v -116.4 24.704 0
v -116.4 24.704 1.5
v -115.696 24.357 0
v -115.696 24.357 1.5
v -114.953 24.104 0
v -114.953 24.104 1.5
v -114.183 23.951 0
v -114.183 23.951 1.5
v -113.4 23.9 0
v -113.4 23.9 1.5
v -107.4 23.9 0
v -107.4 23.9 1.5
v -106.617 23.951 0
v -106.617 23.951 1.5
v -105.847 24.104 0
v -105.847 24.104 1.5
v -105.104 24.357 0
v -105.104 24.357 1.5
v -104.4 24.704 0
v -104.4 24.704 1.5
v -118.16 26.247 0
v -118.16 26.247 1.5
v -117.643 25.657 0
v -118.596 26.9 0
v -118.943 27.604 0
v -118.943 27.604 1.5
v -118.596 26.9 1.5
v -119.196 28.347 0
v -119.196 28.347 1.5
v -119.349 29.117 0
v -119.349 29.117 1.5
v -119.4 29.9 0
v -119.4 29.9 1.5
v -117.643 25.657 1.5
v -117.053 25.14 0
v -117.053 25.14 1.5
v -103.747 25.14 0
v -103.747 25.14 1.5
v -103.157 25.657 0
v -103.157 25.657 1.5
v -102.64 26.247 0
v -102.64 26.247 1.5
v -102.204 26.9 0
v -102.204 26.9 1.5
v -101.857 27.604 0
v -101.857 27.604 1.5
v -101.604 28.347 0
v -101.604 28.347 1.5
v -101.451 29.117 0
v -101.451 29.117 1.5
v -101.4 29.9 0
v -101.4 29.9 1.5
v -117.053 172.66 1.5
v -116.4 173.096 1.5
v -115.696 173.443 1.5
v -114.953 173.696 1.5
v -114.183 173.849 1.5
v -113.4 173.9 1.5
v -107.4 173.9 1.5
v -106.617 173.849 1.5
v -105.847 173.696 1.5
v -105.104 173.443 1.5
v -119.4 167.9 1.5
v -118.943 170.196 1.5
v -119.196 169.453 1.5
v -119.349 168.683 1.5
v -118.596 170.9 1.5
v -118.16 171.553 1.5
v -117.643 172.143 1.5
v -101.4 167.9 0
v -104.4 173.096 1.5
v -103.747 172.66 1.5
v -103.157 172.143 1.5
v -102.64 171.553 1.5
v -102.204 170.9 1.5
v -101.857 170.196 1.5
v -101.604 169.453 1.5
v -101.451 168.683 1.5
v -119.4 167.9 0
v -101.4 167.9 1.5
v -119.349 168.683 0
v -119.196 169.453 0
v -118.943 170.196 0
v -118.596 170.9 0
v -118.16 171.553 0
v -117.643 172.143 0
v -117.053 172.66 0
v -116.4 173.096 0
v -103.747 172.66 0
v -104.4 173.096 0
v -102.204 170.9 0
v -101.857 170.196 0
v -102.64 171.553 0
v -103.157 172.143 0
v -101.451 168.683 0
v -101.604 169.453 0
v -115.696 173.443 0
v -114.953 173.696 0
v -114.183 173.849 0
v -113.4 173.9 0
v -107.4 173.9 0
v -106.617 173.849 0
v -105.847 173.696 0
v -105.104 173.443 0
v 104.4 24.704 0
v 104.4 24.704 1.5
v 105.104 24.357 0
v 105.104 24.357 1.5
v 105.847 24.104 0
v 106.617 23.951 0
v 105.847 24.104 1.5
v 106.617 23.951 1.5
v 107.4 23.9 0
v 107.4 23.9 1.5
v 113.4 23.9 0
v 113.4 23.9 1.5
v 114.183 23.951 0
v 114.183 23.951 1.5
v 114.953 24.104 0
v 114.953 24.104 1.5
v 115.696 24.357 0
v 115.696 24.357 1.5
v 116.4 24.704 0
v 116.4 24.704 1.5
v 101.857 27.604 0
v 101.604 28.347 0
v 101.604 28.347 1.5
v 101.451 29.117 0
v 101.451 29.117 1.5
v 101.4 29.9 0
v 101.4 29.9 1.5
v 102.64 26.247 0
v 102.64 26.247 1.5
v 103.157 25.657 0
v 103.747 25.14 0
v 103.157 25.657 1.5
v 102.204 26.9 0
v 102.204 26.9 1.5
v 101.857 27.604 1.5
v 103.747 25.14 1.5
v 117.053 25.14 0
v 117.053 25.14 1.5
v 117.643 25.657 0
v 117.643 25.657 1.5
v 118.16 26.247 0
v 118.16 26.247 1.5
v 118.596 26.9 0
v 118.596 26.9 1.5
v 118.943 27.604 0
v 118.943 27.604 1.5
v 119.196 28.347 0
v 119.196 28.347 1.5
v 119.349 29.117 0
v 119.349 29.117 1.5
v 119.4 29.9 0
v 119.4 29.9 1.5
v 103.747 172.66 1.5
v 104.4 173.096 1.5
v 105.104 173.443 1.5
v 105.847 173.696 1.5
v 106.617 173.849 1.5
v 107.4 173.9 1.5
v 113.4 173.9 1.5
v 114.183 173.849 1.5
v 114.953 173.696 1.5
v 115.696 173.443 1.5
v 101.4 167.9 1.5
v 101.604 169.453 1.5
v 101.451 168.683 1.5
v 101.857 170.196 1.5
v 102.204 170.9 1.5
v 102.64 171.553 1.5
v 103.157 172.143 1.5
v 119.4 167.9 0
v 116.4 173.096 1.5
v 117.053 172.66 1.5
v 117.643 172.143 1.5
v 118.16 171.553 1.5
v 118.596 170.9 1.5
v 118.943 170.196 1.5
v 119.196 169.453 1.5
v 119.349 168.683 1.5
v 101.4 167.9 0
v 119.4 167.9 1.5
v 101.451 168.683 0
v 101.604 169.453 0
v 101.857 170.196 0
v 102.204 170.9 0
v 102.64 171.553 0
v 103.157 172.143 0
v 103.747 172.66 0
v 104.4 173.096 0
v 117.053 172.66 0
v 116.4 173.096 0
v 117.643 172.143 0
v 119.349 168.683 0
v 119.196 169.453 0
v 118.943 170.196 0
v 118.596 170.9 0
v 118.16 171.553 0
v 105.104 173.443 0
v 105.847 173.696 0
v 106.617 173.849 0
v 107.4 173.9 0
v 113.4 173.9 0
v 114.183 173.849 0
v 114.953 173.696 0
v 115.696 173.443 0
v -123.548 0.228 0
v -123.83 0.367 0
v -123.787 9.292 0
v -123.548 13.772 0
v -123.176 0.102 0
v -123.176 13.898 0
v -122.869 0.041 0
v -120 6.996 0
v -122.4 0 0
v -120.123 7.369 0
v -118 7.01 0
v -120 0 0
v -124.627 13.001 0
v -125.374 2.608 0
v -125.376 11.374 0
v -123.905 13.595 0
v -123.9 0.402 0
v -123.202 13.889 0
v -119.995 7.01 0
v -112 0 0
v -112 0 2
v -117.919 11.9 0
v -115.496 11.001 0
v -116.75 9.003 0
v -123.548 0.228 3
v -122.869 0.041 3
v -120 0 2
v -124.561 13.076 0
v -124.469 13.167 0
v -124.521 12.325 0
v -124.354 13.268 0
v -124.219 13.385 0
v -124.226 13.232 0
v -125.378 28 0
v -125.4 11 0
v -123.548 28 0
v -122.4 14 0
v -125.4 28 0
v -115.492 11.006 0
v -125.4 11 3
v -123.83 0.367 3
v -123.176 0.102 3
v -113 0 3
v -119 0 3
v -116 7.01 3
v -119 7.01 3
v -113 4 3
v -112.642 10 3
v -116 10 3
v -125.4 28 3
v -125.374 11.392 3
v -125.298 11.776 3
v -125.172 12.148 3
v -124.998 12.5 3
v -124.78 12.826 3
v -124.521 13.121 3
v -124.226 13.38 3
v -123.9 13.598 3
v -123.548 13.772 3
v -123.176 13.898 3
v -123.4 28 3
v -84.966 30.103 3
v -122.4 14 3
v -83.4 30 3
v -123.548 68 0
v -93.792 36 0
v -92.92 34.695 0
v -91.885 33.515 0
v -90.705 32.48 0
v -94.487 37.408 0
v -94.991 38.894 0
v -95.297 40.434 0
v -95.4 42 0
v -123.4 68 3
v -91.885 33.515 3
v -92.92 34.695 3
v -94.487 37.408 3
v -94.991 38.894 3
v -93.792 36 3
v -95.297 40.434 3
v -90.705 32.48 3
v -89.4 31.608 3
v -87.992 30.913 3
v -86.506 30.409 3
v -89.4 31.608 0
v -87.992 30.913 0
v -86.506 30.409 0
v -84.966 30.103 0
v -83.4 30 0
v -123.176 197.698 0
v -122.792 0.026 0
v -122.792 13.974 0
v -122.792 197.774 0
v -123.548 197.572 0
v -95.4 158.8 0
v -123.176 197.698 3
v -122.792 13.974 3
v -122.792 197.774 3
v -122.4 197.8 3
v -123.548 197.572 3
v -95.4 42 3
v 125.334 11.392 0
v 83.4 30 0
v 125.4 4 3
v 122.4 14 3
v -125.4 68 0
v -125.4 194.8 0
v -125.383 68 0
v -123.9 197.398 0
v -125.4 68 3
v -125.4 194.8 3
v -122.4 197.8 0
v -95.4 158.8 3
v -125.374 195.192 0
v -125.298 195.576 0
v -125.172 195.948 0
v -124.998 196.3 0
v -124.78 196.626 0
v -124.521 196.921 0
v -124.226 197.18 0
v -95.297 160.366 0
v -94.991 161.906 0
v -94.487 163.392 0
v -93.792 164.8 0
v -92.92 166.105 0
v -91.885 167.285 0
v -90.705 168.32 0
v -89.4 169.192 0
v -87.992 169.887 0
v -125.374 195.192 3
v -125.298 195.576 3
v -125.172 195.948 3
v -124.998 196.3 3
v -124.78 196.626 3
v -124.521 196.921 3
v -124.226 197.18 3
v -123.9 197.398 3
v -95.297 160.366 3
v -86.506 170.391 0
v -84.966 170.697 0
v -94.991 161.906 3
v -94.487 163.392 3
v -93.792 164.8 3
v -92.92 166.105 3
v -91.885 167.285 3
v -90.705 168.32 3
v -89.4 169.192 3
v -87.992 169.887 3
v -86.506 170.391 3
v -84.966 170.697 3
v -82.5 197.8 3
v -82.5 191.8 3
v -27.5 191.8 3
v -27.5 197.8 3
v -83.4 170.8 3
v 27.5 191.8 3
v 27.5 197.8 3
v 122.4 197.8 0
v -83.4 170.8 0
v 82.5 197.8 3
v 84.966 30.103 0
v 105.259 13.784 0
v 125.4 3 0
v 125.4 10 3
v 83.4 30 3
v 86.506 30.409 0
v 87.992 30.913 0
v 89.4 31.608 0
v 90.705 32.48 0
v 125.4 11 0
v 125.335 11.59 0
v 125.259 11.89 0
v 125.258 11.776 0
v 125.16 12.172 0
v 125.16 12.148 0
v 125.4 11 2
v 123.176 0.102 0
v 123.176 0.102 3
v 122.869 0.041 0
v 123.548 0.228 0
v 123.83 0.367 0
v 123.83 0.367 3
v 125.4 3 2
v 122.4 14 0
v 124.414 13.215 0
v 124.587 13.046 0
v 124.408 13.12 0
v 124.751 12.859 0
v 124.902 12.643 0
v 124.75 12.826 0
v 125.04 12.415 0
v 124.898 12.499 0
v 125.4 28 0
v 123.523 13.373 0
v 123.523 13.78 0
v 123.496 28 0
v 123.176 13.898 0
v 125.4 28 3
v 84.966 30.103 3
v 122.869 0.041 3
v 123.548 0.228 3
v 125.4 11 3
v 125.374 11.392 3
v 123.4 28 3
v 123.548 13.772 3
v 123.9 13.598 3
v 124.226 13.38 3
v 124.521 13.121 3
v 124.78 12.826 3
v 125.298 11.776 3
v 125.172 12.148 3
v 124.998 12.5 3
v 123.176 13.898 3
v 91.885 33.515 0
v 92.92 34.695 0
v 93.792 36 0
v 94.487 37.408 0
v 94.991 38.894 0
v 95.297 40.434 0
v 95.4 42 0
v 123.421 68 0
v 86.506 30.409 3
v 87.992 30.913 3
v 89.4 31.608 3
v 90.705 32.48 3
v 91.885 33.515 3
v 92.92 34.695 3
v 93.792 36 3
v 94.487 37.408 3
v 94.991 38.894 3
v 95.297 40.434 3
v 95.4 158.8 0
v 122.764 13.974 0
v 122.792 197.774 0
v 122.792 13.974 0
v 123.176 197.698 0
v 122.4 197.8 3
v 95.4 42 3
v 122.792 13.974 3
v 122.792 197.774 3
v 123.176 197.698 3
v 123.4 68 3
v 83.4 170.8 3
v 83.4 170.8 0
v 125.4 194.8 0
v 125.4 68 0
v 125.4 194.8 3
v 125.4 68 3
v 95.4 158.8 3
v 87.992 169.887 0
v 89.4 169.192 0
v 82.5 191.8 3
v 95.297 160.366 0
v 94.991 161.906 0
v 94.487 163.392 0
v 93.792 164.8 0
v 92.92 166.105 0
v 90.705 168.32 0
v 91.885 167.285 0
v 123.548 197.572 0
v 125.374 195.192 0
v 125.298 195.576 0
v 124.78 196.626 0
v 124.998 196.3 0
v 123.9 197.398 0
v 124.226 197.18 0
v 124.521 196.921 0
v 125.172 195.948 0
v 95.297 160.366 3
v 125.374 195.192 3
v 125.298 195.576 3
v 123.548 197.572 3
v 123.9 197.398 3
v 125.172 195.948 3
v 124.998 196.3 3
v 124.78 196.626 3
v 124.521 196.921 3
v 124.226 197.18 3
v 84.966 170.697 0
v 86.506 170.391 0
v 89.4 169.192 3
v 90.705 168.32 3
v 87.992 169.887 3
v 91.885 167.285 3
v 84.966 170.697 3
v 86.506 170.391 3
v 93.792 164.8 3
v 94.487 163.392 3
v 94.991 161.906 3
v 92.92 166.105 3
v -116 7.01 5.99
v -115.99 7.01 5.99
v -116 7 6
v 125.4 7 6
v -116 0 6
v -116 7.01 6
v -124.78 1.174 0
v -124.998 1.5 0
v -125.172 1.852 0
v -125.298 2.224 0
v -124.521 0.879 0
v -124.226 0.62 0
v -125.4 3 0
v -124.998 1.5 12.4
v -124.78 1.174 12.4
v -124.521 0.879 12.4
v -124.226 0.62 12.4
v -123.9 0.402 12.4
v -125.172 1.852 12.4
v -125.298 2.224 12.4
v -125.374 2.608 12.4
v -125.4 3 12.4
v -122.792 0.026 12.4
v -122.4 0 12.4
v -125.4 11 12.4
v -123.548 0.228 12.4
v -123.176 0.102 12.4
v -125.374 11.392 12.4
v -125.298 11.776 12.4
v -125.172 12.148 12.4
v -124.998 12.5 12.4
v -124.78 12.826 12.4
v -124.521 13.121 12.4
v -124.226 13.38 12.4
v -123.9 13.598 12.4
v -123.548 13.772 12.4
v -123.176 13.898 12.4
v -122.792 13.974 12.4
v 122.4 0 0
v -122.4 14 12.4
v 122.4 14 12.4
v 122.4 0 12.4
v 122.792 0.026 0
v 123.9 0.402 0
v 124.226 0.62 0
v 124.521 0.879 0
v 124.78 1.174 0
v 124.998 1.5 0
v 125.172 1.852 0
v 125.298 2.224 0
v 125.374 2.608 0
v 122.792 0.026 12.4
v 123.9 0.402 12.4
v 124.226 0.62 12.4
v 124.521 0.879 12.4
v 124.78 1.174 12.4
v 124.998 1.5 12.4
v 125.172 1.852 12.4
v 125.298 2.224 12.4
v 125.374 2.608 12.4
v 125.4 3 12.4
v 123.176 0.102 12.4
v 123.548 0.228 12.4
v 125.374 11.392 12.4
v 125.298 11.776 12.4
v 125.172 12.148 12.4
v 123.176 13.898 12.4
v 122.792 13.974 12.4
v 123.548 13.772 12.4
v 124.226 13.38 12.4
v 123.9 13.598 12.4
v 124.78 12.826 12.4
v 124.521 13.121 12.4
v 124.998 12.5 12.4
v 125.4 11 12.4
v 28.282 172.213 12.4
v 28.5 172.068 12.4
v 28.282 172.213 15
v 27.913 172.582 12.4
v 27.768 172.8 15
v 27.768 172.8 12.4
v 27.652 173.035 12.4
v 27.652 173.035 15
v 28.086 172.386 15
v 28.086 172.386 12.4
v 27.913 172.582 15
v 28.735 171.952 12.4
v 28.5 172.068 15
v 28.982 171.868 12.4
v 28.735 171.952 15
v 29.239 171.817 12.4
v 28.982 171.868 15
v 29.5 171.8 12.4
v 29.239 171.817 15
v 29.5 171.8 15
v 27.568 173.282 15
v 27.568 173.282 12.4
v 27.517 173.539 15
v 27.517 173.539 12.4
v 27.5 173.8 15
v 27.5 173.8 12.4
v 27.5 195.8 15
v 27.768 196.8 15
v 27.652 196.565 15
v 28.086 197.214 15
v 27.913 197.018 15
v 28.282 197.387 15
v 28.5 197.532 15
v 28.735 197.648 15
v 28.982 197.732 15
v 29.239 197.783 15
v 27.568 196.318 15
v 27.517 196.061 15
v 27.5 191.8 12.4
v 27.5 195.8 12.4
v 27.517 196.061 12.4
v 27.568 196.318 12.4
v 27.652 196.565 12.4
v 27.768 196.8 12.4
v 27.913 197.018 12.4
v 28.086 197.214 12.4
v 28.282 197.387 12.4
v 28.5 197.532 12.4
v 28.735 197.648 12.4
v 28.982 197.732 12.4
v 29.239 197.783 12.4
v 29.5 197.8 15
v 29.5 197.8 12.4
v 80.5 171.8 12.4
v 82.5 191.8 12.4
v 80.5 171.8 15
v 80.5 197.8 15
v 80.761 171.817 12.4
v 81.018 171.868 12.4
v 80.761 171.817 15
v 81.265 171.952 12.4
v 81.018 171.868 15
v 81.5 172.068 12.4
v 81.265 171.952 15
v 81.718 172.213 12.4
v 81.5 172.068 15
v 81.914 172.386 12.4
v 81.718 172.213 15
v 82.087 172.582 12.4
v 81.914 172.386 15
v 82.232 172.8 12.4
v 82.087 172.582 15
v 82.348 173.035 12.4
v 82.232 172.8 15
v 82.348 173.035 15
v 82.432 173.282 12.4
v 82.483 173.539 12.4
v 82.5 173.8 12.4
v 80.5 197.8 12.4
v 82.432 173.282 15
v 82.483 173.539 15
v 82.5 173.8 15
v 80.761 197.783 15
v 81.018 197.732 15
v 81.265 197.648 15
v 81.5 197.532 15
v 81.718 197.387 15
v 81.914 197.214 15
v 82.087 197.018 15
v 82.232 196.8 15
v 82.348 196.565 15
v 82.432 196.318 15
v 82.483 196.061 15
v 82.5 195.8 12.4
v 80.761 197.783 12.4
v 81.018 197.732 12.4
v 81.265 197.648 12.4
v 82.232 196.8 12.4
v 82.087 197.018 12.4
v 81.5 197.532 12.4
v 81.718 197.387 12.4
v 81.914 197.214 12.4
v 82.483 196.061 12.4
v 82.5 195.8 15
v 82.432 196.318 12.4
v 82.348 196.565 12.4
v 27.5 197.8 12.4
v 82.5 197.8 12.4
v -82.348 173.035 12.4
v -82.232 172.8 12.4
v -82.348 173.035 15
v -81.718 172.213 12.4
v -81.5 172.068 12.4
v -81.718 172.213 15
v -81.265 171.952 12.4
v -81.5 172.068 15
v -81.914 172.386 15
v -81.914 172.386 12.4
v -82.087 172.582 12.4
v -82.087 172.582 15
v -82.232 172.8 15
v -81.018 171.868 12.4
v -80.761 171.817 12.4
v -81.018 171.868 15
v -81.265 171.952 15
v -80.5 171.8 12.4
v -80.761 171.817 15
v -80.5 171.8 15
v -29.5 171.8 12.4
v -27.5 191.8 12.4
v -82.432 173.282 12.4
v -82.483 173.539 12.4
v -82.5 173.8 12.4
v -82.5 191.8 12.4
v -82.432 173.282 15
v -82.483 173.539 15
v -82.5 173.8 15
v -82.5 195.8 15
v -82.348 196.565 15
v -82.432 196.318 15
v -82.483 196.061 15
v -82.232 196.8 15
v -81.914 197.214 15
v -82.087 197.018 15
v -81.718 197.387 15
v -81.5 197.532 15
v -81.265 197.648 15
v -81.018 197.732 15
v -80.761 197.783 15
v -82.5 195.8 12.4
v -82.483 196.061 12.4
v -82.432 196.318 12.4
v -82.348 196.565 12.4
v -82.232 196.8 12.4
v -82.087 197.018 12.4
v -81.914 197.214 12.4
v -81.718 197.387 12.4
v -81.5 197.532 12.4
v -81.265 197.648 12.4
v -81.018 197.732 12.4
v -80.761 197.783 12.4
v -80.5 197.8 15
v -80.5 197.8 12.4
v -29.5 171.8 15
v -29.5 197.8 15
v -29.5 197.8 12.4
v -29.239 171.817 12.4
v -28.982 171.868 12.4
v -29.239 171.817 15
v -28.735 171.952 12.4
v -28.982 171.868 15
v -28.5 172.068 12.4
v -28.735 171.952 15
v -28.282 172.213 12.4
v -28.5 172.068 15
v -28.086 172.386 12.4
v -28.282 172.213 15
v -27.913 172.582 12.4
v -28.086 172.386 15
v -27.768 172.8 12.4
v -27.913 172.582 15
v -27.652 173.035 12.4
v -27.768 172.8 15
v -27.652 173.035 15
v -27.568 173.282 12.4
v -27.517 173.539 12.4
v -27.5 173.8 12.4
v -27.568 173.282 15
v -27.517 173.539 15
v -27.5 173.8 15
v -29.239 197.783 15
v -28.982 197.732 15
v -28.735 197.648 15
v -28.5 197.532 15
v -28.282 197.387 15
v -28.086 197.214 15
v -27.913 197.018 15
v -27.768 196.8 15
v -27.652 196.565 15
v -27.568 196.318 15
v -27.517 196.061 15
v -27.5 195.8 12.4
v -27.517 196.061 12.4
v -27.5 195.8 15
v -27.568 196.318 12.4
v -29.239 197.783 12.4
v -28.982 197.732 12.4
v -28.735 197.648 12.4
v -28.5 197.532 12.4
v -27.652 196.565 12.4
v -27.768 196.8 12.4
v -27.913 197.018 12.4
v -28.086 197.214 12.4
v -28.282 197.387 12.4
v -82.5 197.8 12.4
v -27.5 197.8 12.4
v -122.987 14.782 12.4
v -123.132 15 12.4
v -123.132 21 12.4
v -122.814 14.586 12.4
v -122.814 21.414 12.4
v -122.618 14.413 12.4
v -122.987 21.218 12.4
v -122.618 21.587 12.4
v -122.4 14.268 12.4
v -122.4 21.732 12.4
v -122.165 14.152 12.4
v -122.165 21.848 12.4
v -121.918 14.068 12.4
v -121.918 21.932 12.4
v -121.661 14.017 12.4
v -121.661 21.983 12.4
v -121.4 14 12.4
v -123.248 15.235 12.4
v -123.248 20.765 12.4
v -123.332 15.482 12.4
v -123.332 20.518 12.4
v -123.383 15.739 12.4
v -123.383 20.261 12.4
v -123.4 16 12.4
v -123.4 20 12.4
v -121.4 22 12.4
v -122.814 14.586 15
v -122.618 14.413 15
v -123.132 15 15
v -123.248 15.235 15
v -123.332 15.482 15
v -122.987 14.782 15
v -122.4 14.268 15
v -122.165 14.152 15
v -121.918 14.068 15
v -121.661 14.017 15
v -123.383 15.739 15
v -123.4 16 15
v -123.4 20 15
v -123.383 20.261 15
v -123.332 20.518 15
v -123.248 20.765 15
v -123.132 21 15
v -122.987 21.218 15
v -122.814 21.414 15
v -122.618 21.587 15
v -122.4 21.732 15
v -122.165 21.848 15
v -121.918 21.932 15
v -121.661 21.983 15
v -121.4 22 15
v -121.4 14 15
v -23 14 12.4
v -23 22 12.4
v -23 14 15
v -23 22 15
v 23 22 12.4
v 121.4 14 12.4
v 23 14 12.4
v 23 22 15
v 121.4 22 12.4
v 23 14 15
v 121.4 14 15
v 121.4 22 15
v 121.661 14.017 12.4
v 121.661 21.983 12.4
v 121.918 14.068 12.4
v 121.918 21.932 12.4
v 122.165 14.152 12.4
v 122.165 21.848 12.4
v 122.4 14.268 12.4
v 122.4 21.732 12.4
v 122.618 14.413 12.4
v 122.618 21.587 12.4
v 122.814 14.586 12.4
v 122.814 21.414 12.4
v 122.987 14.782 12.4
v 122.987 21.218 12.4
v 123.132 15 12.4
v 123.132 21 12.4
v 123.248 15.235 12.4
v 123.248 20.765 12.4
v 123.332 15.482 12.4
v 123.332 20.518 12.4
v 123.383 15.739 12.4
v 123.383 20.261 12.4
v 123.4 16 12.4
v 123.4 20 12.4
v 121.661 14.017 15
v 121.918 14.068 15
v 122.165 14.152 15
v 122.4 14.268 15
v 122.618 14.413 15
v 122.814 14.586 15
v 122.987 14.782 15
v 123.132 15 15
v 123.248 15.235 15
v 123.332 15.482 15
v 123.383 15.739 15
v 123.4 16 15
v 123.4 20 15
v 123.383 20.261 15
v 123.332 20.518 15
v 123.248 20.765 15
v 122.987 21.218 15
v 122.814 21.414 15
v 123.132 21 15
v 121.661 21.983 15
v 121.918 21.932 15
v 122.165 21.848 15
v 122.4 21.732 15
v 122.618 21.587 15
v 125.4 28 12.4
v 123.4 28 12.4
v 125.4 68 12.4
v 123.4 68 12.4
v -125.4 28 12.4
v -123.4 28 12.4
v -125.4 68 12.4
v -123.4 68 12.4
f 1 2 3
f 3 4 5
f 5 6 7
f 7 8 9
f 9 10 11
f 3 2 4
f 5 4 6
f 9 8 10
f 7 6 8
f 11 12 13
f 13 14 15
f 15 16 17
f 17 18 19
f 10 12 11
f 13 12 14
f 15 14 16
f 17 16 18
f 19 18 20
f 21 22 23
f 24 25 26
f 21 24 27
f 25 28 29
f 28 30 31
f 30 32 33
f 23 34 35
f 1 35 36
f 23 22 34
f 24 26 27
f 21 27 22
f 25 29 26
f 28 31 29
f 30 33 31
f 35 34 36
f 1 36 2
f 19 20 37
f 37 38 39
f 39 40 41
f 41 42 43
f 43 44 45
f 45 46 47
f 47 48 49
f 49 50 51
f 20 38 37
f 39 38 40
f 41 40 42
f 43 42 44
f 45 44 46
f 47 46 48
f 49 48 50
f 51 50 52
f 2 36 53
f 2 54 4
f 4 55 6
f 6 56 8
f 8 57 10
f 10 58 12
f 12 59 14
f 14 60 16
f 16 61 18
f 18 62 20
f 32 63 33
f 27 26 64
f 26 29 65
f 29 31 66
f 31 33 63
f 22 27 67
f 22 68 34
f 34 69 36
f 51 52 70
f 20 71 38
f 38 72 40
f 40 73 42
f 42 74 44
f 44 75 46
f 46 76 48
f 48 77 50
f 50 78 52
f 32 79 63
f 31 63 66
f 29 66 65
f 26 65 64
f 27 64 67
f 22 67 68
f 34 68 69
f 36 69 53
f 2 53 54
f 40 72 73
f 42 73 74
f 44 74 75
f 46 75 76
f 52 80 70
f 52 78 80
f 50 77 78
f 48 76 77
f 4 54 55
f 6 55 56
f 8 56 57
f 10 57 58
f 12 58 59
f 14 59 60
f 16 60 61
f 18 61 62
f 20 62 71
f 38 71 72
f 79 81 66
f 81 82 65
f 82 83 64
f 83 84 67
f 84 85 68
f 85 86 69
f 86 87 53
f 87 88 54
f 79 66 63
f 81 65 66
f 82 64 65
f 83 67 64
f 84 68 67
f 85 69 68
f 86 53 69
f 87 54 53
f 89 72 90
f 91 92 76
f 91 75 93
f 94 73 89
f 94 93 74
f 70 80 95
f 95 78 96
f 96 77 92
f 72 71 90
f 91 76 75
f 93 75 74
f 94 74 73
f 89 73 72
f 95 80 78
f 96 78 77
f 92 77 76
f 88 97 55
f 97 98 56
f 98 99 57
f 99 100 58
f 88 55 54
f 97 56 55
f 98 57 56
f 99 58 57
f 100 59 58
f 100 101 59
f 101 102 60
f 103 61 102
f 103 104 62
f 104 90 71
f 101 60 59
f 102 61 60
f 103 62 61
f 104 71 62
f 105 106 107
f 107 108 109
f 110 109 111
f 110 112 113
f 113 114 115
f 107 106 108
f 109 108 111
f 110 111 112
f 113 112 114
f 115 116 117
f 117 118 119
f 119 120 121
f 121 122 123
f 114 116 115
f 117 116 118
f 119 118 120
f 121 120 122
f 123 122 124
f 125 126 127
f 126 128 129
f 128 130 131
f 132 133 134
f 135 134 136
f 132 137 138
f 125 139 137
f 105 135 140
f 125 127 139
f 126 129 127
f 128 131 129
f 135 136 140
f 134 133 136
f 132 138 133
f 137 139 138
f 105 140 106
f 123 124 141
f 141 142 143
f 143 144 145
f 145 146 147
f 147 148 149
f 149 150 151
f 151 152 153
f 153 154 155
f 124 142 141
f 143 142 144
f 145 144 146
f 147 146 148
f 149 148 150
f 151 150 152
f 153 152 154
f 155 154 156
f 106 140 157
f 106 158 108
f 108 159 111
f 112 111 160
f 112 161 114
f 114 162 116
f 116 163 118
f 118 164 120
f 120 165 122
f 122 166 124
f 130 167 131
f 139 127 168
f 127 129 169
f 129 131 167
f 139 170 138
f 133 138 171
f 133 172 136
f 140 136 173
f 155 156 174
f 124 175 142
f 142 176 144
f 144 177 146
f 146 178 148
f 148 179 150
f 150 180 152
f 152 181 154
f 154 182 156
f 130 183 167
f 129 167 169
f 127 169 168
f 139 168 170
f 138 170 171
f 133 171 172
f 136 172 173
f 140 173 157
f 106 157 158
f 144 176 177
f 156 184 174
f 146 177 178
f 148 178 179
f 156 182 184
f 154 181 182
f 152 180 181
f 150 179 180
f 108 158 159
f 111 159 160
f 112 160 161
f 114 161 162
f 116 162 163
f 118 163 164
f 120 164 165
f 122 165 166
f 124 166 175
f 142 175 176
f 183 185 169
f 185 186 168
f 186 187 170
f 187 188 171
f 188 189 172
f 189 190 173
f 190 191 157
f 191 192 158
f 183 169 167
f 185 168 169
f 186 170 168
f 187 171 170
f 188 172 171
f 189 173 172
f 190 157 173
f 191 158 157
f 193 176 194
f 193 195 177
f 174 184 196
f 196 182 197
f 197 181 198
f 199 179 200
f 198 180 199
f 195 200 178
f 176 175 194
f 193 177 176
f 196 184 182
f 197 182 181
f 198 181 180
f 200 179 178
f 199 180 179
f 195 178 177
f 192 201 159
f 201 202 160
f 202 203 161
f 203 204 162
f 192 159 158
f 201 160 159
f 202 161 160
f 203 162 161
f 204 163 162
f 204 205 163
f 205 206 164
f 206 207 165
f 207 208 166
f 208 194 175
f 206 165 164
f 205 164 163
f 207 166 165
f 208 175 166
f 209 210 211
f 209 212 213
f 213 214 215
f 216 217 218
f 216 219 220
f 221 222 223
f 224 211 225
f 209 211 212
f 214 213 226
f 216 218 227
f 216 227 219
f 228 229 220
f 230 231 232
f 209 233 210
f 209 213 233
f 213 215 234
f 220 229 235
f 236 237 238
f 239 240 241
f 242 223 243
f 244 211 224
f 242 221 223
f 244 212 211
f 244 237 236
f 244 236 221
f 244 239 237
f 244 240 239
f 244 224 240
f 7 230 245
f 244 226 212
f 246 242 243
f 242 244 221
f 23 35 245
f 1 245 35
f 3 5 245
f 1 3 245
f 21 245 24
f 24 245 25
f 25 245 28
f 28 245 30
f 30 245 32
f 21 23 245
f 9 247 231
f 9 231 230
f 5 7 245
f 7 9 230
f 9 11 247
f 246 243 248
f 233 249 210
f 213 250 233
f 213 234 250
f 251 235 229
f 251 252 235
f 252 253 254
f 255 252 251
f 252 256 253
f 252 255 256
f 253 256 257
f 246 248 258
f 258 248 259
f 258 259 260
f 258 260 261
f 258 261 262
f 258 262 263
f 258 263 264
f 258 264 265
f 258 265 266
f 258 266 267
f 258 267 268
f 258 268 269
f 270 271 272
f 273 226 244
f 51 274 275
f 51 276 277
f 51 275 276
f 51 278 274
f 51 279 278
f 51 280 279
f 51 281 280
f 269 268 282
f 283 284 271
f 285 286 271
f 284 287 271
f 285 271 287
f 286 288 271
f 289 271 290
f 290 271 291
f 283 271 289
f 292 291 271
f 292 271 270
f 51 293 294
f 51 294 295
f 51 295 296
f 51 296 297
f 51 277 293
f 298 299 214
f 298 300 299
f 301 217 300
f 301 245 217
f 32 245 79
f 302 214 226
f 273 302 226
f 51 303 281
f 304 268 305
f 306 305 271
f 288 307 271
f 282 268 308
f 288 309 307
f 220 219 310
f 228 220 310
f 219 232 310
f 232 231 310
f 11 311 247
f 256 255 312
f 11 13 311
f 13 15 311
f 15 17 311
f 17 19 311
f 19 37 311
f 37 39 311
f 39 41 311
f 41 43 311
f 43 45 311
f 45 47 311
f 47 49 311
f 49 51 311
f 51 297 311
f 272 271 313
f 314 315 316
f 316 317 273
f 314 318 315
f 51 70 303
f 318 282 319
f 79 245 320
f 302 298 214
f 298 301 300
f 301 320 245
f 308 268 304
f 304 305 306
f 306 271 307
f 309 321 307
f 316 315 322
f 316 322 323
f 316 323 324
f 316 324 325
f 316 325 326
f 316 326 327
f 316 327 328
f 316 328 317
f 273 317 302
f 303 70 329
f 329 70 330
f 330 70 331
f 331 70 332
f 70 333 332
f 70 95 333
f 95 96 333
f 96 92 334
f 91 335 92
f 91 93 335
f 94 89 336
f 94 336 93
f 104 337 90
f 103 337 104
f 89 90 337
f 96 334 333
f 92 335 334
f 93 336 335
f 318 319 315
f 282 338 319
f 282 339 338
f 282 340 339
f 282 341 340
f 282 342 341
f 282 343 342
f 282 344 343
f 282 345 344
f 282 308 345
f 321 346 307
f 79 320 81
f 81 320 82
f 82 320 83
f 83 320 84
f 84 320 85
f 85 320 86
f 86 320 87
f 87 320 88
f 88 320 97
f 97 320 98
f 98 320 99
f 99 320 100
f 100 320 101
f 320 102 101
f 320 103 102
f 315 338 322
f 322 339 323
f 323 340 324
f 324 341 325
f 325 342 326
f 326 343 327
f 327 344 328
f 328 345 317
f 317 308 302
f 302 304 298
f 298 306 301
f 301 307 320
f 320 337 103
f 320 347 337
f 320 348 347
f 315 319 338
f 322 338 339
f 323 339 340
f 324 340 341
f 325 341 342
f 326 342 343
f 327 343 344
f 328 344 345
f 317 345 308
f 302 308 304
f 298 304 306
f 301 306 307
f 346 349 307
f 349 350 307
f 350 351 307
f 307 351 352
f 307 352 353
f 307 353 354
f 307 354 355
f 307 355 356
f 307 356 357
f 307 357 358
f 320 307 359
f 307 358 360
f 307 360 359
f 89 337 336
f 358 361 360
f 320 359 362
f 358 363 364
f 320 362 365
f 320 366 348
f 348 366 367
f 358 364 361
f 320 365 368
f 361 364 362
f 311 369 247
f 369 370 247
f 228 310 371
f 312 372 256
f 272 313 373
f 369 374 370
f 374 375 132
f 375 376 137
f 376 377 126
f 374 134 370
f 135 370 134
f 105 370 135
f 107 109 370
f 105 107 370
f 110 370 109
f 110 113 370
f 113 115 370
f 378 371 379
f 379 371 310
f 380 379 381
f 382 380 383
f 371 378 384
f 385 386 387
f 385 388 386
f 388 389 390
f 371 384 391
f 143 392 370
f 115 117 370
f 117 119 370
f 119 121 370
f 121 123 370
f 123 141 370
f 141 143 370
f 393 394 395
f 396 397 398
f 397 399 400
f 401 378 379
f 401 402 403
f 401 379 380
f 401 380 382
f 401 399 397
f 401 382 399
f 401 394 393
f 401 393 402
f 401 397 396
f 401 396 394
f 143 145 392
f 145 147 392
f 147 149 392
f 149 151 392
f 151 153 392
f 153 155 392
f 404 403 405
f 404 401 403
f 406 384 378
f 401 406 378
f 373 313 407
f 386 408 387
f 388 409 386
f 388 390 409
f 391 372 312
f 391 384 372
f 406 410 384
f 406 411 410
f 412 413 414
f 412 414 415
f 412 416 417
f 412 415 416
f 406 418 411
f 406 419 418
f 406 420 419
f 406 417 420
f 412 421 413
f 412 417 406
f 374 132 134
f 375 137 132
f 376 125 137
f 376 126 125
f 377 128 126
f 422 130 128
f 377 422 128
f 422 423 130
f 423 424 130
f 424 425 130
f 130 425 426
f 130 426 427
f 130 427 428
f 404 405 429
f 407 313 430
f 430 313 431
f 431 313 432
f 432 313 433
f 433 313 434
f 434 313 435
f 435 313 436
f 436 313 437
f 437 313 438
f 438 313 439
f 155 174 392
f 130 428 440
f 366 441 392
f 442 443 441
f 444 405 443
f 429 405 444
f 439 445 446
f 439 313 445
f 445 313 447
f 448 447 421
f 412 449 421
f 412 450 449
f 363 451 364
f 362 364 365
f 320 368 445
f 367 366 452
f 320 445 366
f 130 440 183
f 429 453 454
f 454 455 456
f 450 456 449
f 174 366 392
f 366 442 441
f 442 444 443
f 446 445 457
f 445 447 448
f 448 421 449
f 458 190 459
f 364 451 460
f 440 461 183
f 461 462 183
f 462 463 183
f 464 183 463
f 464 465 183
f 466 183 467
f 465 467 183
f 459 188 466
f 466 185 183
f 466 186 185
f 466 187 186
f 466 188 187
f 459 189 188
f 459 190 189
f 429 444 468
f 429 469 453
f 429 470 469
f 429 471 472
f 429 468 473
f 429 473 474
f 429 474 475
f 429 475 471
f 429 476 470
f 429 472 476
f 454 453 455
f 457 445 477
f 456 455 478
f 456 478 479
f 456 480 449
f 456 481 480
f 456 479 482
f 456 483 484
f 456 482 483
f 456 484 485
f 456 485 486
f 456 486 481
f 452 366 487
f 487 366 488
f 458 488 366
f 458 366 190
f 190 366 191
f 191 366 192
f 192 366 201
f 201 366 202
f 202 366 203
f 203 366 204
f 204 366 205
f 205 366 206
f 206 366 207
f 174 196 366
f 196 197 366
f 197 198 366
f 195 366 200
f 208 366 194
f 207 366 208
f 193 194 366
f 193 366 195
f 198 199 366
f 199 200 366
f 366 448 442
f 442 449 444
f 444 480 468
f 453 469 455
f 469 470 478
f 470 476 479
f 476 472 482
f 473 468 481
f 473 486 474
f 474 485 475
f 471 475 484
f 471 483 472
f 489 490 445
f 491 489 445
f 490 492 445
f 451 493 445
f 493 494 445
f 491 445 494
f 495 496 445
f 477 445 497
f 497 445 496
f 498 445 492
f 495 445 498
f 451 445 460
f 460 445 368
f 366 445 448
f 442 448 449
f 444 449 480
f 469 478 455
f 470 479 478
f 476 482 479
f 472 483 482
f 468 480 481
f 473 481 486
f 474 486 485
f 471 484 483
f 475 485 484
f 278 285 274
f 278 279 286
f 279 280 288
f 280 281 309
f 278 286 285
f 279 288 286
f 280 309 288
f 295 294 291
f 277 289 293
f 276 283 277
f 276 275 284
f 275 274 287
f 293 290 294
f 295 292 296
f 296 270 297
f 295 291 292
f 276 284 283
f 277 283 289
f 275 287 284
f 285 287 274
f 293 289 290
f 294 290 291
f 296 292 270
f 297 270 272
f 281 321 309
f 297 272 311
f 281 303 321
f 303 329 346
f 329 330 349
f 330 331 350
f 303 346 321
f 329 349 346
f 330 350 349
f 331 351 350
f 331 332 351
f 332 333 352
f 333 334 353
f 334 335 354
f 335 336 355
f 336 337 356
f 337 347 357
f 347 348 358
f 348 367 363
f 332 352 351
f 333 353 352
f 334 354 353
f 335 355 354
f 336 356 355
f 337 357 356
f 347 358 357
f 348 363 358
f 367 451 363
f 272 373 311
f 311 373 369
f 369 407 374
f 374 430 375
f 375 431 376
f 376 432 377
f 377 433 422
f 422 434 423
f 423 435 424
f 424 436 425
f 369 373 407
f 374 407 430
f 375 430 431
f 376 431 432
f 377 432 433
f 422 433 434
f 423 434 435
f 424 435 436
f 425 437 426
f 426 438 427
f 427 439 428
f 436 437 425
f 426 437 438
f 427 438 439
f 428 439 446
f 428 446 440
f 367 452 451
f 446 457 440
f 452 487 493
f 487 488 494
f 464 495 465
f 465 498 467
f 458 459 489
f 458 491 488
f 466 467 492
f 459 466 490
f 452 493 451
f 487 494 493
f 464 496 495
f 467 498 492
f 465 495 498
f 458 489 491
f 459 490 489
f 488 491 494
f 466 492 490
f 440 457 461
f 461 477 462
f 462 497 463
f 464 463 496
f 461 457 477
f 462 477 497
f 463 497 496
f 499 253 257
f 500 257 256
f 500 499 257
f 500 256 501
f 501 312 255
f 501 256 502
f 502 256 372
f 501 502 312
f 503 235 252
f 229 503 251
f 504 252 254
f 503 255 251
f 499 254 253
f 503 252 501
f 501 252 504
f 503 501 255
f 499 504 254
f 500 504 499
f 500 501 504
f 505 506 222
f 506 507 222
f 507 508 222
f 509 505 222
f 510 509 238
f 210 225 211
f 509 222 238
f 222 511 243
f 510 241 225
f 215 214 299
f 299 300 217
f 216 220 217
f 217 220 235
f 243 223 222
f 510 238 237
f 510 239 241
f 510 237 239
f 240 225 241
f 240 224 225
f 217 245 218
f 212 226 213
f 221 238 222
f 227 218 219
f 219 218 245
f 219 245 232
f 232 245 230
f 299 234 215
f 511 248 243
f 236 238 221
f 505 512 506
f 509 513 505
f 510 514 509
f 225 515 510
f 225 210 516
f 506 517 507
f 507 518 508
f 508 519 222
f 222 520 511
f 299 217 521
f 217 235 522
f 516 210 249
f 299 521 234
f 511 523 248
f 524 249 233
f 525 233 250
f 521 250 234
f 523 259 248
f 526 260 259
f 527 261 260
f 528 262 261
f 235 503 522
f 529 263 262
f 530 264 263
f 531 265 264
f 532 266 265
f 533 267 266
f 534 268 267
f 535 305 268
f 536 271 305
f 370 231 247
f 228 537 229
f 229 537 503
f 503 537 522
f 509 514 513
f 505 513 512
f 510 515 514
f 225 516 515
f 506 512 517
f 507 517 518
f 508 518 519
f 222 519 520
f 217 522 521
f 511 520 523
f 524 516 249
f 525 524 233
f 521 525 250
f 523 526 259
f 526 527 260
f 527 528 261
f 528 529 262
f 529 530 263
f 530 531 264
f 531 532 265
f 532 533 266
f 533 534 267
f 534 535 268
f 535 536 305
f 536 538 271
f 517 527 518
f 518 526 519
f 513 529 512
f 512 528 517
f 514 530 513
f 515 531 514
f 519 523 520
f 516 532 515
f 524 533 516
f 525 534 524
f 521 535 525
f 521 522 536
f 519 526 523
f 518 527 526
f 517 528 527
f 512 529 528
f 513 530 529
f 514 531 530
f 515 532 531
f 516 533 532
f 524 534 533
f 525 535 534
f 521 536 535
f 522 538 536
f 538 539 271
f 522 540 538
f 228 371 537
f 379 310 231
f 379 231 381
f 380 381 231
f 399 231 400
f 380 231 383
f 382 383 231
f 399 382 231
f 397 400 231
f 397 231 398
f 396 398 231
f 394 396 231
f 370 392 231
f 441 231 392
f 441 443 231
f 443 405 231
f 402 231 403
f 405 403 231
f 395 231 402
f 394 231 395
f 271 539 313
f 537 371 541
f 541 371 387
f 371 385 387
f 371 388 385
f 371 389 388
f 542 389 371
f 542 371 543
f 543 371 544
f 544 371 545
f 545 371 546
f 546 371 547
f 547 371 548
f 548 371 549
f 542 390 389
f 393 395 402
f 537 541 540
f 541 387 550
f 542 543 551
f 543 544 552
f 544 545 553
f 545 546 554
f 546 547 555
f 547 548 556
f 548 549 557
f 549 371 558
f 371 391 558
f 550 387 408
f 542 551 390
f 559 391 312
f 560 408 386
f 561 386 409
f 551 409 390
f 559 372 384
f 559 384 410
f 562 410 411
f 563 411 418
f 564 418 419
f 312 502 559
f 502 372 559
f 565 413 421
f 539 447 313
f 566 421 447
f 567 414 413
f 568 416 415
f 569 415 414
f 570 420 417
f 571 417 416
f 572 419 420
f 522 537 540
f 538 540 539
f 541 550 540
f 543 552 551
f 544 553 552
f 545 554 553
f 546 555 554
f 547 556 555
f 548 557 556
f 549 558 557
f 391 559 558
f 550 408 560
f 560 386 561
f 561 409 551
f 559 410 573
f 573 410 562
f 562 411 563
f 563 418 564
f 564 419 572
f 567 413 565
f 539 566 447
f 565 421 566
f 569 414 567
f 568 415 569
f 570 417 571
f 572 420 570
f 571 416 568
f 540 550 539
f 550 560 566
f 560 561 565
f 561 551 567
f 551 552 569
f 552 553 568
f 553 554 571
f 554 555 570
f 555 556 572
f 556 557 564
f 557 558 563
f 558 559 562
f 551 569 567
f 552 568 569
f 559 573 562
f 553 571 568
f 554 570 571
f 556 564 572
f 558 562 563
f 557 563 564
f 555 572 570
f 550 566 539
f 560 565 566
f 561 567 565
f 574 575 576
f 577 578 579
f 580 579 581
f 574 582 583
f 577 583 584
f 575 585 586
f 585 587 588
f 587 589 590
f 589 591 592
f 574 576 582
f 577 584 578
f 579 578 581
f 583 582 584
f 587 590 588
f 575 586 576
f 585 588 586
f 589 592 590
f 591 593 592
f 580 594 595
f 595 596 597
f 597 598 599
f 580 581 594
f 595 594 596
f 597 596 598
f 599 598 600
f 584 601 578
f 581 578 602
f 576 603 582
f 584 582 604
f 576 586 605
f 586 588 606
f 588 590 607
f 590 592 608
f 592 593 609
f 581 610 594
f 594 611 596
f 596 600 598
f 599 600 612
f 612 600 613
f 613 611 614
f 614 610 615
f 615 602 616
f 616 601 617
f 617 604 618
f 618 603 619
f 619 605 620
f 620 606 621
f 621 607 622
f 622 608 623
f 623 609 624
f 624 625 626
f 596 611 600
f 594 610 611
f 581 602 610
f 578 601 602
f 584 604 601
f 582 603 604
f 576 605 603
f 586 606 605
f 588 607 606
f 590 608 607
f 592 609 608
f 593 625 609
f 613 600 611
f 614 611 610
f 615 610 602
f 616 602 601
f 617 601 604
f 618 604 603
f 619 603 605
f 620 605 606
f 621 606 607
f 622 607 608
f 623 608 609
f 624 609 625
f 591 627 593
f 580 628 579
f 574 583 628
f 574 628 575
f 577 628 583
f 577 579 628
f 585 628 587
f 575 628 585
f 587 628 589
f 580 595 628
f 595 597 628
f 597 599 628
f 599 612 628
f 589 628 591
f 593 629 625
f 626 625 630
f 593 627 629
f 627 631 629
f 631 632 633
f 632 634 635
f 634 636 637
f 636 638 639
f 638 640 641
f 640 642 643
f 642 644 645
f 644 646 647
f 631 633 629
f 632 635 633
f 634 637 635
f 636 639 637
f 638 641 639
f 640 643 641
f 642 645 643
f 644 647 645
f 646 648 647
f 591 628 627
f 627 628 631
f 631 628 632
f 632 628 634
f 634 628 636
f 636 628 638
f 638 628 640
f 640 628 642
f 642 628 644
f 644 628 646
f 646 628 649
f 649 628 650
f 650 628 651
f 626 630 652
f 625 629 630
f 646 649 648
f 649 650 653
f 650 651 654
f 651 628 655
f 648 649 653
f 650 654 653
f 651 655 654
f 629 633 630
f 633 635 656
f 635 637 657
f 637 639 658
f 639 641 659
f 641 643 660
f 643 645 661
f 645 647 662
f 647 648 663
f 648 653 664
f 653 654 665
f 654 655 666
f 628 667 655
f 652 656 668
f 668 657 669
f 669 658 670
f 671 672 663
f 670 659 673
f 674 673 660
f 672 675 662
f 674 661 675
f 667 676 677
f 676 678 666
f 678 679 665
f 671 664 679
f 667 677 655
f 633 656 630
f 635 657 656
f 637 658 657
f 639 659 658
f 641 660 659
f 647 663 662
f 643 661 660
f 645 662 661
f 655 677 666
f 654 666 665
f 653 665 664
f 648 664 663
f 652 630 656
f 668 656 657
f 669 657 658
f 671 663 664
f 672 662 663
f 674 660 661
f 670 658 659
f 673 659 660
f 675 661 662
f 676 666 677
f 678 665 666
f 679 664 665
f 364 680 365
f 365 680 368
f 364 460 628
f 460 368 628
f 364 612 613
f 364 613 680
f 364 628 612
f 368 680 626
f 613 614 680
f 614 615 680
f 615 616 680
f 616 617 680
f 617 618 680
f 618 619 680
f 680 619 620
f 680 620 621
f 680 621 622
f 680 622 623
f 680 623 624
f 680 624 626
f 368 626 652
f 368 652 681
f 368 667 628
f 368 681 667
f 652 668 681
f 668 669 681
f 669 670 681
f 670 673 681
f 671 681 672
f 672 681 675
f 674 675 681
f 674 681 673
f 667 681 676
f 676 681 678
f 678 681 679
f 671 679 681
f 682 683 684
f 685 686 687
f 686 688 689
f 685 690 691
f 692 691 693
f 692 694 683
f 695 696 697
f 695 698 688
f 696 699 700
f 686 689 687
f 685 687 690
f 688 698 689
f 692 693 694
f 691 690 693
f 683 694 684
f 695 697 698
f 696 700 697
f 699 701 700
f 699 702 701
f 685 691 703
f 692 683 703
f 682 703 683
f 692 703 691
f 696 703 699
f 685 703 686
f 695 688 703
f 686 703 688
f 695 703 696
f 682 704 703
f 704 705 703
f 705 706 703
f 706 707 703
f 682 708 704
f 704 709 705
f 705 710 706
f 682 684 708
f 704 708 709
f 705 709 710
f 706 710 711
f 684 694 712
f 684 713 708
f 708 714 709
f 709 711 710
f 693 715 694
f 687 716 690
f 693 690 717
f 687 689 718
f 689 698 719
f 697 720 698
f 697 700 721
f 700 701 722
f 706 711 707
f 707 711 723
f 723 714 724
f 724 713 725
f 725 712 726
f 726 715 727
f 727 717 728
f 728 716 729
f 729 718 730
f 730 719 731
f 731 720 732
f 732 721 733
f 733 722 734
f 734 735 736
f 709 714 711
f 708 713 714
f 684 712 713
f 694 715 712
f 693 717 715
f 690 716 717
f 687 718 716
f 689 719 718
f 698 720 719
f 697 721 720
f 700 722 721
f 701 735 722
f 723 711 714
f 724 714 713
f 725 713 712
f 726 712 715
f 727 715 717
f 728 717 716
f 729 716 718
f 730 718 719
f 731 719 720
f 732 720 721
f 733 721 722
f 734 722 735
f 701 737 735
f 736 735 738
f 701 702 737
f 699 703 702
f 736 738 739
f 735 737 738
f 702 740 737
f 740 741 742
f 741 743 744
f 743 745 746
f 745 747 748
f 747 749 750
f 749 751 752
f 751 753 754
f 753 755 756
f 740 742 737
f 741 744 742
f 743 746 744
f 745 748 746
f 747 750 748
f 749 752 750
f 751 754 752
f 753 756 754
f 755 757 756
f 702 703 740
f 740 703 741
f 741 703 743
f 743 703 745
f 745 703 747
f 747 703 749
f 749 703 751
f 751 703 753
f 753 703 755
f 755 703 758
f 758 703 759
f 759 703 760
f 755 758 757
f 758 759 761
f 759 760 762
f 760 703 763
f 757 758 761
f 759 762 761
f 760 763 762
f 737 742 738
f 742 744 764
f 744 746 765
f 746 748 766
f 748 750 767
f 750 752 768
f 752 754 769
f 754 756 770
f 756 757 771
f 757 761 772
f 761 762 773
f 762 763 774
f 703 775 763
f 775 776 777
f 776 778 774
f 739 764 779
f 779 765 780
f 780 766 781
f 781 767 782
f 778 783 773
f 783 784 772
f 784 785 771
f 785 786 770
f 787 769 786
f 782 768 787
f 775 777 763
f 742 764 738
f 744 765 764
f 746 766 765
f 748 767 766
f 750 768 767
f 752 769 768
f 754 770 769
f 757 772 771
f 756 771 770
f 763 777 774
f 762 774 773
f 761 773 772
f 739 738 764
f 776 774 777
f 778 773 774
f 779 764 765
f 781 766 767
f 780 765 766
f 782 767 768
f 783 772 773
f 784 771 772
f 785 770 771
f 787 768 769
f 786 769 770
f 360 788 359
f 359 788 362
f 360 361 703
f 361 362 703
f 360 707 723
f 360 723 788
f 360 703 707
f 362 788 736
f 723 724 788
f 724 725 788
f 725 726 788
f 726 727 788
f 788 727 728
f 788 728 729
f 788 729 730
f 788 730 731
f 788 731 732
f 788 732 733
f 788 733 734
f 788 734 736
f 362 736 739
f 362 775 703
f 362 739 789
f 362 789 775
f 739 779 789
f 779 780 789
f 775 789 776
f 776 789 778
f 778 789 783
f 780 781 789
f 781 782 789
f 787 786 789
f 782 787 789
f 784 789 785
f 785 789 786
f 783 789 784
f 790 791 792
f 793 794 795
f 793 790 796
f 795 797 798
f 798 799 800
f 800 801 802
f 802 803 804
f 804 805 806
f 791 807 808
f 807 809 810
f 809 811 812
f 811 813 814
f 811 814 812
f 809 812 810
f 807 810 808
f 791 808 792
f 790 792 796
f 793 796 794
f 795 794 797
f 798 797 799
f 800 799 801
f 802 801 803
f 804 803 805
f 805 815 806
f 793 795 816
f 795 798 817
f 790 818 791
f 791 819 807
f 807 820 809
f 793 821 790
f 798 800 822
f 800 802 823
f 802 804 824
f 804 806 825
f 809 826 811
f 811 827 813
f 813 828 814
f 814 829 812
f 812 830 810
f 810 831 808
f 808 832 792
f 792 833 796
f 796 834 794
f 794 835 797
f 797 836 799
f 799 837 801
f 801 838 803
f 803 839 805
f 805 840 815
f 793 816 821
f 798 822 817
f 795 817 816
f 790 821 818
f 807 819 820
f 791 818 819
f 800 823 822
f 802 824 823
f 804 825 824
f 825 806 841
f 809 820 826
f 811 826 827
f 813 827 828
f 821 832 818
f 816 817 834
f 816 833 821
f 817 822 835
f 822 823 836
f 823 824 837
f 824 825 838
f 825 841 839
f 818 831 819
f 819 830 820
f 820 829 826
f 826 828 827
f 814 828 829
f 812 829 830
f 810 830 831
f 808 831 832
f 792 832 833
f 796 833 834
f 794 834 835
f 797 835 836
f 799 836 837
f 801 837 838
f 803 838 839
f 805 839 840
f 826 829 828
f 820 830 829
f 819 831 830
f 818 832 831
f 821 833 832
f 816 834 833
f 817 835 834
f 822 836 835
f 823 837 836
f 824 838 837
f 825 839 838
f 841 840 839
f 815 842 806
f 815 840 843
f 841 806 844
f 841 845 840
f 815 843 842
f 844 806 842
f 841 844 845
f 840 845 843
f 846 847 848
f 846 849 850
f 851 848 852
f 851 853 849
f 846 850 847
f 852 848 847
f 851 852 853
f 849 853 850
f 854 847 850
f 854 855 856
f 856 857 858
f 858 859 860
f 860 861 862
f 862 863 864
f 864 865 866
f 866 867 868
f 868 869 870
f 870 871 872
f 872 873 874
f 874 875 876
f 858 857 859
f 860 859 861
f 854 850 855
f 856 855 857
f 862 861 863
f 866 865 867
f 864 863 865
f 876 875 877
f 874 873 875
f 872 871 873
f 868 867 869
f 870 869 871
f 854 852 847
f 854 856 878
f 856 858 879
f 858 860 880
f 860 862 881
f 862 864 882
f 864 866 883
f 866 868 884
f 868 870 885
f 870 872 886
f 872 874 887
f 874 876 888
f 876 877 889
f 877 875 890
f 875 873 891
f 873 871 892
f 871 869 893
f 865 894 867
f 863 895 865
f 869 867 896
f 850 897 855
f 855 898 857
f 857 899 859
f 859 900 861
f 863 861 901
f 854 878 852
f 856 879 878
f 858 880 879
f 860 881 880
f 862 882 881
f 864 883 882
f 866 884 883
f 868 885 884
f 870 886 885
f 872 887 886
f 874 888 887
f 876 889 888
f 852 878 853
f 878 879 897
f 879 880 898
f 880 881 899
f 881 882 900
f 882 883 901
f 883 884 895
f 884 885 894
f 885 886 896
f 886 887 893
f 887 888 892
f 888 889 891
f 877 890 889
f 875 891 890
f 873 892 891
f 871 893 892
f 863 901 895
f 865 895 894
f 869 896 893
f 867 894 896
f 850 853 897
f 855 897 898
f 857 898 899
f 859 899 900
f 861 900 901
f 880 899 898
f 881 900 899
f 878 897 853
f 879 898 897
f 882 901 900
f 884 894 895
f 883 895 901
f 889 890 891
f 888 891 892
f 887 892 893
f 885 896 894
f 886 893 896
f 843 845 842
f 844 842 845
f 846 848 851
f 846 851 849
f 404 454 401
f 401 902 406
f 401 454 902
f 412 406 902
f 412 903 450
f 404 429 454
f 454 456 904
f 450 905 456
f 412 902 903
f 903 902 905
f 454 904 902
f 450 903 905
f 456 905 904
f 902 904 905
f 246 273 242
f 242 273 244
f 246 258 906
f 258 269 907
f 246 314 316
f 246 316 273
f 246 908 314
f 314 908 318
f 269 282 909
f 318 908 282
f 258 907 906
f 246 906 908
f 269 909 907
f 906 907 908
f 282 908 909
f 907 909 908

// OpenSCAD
// =============================================================================
//  Fire HD 10 (2023 / 13th generation) — landscape wall mount  (v2)
//  Flat-backed cradle for Command 20 lb X-Large picture hanging strips.
//
//  v2 changes (from the first test print):
//   * Cable: a genuinely OPEN lay-in groove on the back — you drop the cable
//     in, no threading, no bridging tabs. Right edge -> across the back ->
//     out the bottom-left, hidden against the wall.
//   * Flush / squared look: square front edges (no decorative bevels),
//     straight-walled channel, minimal corner rounding.
//   * Bottom seats flush: the tablet's ROUNDED corners now drop into open
//     relief (no square brackets fighting the radius); two slim side rails
//     on the frame stop it sliding sideways, contacting the straight edges.
//
//  Orientation: landscape, model centered on X, bottom of plate at Y = 0.
//    X = tablet long edge (horizontal)   Y = short edge (up the wall)
//    Z = out from the wall (back face at Z=0 -> print this face DOWN).
//  Units: millimetres.
// =============================================================================

/* [Tablet — Fire HD 10, 2023 / 13th gen] */
tw  = 246;        // long edge (horizontal in landscape)
th  = 164.8;      // short edge (vertical)
tt  = 8.6;        // thickness
t_r = 12;         // tablet corner radius (approx; side rails start above it)

/* [Fit clearances] */
cl_w = 0.8;       // total horizontal play (tablet vs. pocket)
cl_t = 0.8;       // extra pocket depth beyond tablet thickness

/* [Shell] */
back     = 3.0;              // back-plate thickness
lip_z    = 2.6;             // how far lips stand proud of the tablet front
pocket_t = tt + cl_t;       // pocket depth available for the tablet (Z)
front_z  = back + pocket_t; // Z-plane of the tablet's front face (12.4)
depth    = front_z + lip_z; // overall part depth

/* [Vertical layout — Y] */
base_h   = 14;                       // bottom shelf block height (below tablet)
rest_y   = base_h;                   // shelf floor = tablet bottom edge
lift     = 11;                       // vertical travel for lift-and-drop insert
head     = 2;                        // headroom above lifted tablet
top_wall = 6;                        // top ceiling bar (ties clips to plate)
seated_top = rest_y + th;            // tablet top edge when seated
plate_h    = seated_top + lift + head + top_wall;

/* [Horizontal layout — X] */
side_border = 2;                     // frame beside the tablet (hosts side rails)
plate_w = tw + cl_w + 2*side_border; // overall plate width (250.8)
half_w  = plate_w/2;
t_half  = tw/2;
pocket_x = t_half + cl_w/2;          // inner face of the side rails (123.4)

/* [Lips, clips, side rails] */
bl_cover  = 8;                       // bottom-lip front coverage (Y)
tl_below  = 7;                       // top-lip coverage below the seated top edge
clip_w    = 55;                      // width of each top clip (X)
clip_cx   = 55;                      // top-clip centre offset from X=0
finger_w  = 46;                      // finger notch in the bottom lip
rail_y0   = rest_y + 14;             // side rails start above the corner radius
rail_len  = 40;                      // side-rail length up the edge

/* [Cable channel — open lay-in groove on the BACK, self-supporting roof] */
cw      = 8;                         // channel opening width (fits a USB-C cable)
bd      = 6;                         // total channel depth into the back of the base
ych     = 7;                         // channel centreline height
cx_left = -116;                      // left (exit) end — drops out the bottom edge
ch_rect = bd - cw/2;                 // vertical-wall height before the 45° peak

/* [Command-strip recesses — on the back] */
rec_w  = 18;                         // recess width
rec_h  = 150;                        // recess height
rec_d  = 1.5;                        // recess depth (shallow)
rec_cx = (plate_w/2 - side_border + (plate_w/2 - 30)) / 2 + side_border/2; // side-frame centre
rec_cy = plate_h/2;

/* [Styling — squared / flush] */
rc  = 3;         // plate corner radius (slight)
eps = 0.01;
$fn = 48;

/* [Back-plate window] */
win_border = 30;
ww   = plate_w - 2*win_border;       // window width
win_y0 = rest_y + bl_cover + 8;
win_y1 = seated_top - 8;
wh   = win_y1 - win_y0;              // window height
wcy  = (win_y0 + win_y1)/2;
wr   = 12;                           // window corner radius

// ---------------------------------------------------------------------------
module rrect(w, h, r) {              // rounded rectangle, centered
    hull() for (sx = [-1, 1], sy = [-1, 1])
        translate([sx*(w/2 - r), sy*(h/2 - r)]) circle(r = r);
}

// Square-edged rounded slab, centered in XY, Z in [0, thick].
module slab(w, h, thick, r) {
    linear_extrude(thick) rrect(w, h, r);
}

module plate() {
    difference() {
        translate([0, plate_h/2, 0]) slab(plate_w, plate_h, back, rc);
        // through window (square edges)
        translate([0, wcy, -eps]) linear_extrude(back + 2*eps) rrect(ww, wh, wr);
        // shallow Command-strip recesses on the back (Z=0 face)
        for (sx = [-1, 1])
            translate([sx*rec_cx, rec_cy, -eps])
                linear_extrude(rec_d + eps) rrect(rec_w, rec_h, 6);
    }
}

// Open groove cut into the BACK (Z=0 side) of the base: in from the open right
// edge, across under the tablet, then down and out the bottom-left. The opening
// is the full width `cw` on the back face (lay the cable in, the wall caps it);
// the roof is a 45° peak so it prints with NO supports and NO sag, and the V
// gently cradles the cable. Printed back-down, Z=0 is the bed/wall side.
module cable_cut() {
    s  = cw / sqrt(2);               // side of the 45°-rotated cube = the peak
    x1 = half_w + eps;               // open at the right edge
    // ---- horizontal run (along X) ----
    translate([(cx_left + x1)/2, ych, (ch_rect - eps)/2])
        cube([x1 - cx_left, cw, ch_rect + eps], center = true);       // vertical-wall part
    translate([(cx_left + x1)/2, ych, ch_rect])
        rotate([45, 0, 0]) cube([x1 - cx_left, s, s], center = true); // 45° peak
    // ---- left exit (along Y, down and out the bottom edge) ----
    translate([cx_left, ych/2, (ch_rect - eps)/2])
        cube([cw, ych + 2*eps, ch_rect + eps], center = true);
    translate([cx_left, ych/2, ch_rect])
        rotate([0, 45, 0]) cube([s, ych + 2*eps, s], center = true);
}

module base() {                      // bottom shelf block; top face = shelf floor
    difference() {
        translate([0, base_h/2, 0]) slab(plate_w, base_h, front_z, rc);
        cable_cut();
    }
}

module top_clip(cx) {
    lip_y0 = seated_top - tl_below;
    translate([cx, (lip_y0 + plate_h)/2, front_z])
        slab(clip_w, plate_h - lip_y0, lip_z, 2);
    conn_y0 = seated_top + lift + head;          // connector above the tablet
    translate([cx, (conn_y0 + plate_h)/2, (back + front_z)/2])
        cube([clip_w, plate_h - conn_y0, front_z - back], center = true);
}

module bottom_lip() {
    difference() {
        translate([0, rest_y + bl_cover/2, front_z])
            slab(tw + cl_w, bl_cover, lip_z, 2);
        translate([0, rest_y + bl_cover/2, front_z + lip_z/2])
            cube([finger_w, bl_cover + 2, lip_z + 2], center = true);
    }
}

// Slim rail on the side frame, inner face at the tablet's straight edge, rising
// to the tablet front. Starts above the corner radius so the rounded corner has
// clearance and the tablet seats flush on the shelf.
module side_rail(sx) {
    x0 = sx*pocket_x;                 // inner face (123.4), at the tablet edge
    x1 = sx*half_w;                   // outer face, the plate edge
    translate([(x0 + x1)/2, rail_y0 + rail_len/2, front_z/2])
        cube([abs(x1 - x0), rail_len, front_z], center = true);
}

module mount() {
    union() {
        plate();
        base();
        top_clip( clip_cx);
        top_clip(-clip_cx);
        bottom_lip();
        side_rail( 1);
        side_rail(-1);
    }
}

mount();
